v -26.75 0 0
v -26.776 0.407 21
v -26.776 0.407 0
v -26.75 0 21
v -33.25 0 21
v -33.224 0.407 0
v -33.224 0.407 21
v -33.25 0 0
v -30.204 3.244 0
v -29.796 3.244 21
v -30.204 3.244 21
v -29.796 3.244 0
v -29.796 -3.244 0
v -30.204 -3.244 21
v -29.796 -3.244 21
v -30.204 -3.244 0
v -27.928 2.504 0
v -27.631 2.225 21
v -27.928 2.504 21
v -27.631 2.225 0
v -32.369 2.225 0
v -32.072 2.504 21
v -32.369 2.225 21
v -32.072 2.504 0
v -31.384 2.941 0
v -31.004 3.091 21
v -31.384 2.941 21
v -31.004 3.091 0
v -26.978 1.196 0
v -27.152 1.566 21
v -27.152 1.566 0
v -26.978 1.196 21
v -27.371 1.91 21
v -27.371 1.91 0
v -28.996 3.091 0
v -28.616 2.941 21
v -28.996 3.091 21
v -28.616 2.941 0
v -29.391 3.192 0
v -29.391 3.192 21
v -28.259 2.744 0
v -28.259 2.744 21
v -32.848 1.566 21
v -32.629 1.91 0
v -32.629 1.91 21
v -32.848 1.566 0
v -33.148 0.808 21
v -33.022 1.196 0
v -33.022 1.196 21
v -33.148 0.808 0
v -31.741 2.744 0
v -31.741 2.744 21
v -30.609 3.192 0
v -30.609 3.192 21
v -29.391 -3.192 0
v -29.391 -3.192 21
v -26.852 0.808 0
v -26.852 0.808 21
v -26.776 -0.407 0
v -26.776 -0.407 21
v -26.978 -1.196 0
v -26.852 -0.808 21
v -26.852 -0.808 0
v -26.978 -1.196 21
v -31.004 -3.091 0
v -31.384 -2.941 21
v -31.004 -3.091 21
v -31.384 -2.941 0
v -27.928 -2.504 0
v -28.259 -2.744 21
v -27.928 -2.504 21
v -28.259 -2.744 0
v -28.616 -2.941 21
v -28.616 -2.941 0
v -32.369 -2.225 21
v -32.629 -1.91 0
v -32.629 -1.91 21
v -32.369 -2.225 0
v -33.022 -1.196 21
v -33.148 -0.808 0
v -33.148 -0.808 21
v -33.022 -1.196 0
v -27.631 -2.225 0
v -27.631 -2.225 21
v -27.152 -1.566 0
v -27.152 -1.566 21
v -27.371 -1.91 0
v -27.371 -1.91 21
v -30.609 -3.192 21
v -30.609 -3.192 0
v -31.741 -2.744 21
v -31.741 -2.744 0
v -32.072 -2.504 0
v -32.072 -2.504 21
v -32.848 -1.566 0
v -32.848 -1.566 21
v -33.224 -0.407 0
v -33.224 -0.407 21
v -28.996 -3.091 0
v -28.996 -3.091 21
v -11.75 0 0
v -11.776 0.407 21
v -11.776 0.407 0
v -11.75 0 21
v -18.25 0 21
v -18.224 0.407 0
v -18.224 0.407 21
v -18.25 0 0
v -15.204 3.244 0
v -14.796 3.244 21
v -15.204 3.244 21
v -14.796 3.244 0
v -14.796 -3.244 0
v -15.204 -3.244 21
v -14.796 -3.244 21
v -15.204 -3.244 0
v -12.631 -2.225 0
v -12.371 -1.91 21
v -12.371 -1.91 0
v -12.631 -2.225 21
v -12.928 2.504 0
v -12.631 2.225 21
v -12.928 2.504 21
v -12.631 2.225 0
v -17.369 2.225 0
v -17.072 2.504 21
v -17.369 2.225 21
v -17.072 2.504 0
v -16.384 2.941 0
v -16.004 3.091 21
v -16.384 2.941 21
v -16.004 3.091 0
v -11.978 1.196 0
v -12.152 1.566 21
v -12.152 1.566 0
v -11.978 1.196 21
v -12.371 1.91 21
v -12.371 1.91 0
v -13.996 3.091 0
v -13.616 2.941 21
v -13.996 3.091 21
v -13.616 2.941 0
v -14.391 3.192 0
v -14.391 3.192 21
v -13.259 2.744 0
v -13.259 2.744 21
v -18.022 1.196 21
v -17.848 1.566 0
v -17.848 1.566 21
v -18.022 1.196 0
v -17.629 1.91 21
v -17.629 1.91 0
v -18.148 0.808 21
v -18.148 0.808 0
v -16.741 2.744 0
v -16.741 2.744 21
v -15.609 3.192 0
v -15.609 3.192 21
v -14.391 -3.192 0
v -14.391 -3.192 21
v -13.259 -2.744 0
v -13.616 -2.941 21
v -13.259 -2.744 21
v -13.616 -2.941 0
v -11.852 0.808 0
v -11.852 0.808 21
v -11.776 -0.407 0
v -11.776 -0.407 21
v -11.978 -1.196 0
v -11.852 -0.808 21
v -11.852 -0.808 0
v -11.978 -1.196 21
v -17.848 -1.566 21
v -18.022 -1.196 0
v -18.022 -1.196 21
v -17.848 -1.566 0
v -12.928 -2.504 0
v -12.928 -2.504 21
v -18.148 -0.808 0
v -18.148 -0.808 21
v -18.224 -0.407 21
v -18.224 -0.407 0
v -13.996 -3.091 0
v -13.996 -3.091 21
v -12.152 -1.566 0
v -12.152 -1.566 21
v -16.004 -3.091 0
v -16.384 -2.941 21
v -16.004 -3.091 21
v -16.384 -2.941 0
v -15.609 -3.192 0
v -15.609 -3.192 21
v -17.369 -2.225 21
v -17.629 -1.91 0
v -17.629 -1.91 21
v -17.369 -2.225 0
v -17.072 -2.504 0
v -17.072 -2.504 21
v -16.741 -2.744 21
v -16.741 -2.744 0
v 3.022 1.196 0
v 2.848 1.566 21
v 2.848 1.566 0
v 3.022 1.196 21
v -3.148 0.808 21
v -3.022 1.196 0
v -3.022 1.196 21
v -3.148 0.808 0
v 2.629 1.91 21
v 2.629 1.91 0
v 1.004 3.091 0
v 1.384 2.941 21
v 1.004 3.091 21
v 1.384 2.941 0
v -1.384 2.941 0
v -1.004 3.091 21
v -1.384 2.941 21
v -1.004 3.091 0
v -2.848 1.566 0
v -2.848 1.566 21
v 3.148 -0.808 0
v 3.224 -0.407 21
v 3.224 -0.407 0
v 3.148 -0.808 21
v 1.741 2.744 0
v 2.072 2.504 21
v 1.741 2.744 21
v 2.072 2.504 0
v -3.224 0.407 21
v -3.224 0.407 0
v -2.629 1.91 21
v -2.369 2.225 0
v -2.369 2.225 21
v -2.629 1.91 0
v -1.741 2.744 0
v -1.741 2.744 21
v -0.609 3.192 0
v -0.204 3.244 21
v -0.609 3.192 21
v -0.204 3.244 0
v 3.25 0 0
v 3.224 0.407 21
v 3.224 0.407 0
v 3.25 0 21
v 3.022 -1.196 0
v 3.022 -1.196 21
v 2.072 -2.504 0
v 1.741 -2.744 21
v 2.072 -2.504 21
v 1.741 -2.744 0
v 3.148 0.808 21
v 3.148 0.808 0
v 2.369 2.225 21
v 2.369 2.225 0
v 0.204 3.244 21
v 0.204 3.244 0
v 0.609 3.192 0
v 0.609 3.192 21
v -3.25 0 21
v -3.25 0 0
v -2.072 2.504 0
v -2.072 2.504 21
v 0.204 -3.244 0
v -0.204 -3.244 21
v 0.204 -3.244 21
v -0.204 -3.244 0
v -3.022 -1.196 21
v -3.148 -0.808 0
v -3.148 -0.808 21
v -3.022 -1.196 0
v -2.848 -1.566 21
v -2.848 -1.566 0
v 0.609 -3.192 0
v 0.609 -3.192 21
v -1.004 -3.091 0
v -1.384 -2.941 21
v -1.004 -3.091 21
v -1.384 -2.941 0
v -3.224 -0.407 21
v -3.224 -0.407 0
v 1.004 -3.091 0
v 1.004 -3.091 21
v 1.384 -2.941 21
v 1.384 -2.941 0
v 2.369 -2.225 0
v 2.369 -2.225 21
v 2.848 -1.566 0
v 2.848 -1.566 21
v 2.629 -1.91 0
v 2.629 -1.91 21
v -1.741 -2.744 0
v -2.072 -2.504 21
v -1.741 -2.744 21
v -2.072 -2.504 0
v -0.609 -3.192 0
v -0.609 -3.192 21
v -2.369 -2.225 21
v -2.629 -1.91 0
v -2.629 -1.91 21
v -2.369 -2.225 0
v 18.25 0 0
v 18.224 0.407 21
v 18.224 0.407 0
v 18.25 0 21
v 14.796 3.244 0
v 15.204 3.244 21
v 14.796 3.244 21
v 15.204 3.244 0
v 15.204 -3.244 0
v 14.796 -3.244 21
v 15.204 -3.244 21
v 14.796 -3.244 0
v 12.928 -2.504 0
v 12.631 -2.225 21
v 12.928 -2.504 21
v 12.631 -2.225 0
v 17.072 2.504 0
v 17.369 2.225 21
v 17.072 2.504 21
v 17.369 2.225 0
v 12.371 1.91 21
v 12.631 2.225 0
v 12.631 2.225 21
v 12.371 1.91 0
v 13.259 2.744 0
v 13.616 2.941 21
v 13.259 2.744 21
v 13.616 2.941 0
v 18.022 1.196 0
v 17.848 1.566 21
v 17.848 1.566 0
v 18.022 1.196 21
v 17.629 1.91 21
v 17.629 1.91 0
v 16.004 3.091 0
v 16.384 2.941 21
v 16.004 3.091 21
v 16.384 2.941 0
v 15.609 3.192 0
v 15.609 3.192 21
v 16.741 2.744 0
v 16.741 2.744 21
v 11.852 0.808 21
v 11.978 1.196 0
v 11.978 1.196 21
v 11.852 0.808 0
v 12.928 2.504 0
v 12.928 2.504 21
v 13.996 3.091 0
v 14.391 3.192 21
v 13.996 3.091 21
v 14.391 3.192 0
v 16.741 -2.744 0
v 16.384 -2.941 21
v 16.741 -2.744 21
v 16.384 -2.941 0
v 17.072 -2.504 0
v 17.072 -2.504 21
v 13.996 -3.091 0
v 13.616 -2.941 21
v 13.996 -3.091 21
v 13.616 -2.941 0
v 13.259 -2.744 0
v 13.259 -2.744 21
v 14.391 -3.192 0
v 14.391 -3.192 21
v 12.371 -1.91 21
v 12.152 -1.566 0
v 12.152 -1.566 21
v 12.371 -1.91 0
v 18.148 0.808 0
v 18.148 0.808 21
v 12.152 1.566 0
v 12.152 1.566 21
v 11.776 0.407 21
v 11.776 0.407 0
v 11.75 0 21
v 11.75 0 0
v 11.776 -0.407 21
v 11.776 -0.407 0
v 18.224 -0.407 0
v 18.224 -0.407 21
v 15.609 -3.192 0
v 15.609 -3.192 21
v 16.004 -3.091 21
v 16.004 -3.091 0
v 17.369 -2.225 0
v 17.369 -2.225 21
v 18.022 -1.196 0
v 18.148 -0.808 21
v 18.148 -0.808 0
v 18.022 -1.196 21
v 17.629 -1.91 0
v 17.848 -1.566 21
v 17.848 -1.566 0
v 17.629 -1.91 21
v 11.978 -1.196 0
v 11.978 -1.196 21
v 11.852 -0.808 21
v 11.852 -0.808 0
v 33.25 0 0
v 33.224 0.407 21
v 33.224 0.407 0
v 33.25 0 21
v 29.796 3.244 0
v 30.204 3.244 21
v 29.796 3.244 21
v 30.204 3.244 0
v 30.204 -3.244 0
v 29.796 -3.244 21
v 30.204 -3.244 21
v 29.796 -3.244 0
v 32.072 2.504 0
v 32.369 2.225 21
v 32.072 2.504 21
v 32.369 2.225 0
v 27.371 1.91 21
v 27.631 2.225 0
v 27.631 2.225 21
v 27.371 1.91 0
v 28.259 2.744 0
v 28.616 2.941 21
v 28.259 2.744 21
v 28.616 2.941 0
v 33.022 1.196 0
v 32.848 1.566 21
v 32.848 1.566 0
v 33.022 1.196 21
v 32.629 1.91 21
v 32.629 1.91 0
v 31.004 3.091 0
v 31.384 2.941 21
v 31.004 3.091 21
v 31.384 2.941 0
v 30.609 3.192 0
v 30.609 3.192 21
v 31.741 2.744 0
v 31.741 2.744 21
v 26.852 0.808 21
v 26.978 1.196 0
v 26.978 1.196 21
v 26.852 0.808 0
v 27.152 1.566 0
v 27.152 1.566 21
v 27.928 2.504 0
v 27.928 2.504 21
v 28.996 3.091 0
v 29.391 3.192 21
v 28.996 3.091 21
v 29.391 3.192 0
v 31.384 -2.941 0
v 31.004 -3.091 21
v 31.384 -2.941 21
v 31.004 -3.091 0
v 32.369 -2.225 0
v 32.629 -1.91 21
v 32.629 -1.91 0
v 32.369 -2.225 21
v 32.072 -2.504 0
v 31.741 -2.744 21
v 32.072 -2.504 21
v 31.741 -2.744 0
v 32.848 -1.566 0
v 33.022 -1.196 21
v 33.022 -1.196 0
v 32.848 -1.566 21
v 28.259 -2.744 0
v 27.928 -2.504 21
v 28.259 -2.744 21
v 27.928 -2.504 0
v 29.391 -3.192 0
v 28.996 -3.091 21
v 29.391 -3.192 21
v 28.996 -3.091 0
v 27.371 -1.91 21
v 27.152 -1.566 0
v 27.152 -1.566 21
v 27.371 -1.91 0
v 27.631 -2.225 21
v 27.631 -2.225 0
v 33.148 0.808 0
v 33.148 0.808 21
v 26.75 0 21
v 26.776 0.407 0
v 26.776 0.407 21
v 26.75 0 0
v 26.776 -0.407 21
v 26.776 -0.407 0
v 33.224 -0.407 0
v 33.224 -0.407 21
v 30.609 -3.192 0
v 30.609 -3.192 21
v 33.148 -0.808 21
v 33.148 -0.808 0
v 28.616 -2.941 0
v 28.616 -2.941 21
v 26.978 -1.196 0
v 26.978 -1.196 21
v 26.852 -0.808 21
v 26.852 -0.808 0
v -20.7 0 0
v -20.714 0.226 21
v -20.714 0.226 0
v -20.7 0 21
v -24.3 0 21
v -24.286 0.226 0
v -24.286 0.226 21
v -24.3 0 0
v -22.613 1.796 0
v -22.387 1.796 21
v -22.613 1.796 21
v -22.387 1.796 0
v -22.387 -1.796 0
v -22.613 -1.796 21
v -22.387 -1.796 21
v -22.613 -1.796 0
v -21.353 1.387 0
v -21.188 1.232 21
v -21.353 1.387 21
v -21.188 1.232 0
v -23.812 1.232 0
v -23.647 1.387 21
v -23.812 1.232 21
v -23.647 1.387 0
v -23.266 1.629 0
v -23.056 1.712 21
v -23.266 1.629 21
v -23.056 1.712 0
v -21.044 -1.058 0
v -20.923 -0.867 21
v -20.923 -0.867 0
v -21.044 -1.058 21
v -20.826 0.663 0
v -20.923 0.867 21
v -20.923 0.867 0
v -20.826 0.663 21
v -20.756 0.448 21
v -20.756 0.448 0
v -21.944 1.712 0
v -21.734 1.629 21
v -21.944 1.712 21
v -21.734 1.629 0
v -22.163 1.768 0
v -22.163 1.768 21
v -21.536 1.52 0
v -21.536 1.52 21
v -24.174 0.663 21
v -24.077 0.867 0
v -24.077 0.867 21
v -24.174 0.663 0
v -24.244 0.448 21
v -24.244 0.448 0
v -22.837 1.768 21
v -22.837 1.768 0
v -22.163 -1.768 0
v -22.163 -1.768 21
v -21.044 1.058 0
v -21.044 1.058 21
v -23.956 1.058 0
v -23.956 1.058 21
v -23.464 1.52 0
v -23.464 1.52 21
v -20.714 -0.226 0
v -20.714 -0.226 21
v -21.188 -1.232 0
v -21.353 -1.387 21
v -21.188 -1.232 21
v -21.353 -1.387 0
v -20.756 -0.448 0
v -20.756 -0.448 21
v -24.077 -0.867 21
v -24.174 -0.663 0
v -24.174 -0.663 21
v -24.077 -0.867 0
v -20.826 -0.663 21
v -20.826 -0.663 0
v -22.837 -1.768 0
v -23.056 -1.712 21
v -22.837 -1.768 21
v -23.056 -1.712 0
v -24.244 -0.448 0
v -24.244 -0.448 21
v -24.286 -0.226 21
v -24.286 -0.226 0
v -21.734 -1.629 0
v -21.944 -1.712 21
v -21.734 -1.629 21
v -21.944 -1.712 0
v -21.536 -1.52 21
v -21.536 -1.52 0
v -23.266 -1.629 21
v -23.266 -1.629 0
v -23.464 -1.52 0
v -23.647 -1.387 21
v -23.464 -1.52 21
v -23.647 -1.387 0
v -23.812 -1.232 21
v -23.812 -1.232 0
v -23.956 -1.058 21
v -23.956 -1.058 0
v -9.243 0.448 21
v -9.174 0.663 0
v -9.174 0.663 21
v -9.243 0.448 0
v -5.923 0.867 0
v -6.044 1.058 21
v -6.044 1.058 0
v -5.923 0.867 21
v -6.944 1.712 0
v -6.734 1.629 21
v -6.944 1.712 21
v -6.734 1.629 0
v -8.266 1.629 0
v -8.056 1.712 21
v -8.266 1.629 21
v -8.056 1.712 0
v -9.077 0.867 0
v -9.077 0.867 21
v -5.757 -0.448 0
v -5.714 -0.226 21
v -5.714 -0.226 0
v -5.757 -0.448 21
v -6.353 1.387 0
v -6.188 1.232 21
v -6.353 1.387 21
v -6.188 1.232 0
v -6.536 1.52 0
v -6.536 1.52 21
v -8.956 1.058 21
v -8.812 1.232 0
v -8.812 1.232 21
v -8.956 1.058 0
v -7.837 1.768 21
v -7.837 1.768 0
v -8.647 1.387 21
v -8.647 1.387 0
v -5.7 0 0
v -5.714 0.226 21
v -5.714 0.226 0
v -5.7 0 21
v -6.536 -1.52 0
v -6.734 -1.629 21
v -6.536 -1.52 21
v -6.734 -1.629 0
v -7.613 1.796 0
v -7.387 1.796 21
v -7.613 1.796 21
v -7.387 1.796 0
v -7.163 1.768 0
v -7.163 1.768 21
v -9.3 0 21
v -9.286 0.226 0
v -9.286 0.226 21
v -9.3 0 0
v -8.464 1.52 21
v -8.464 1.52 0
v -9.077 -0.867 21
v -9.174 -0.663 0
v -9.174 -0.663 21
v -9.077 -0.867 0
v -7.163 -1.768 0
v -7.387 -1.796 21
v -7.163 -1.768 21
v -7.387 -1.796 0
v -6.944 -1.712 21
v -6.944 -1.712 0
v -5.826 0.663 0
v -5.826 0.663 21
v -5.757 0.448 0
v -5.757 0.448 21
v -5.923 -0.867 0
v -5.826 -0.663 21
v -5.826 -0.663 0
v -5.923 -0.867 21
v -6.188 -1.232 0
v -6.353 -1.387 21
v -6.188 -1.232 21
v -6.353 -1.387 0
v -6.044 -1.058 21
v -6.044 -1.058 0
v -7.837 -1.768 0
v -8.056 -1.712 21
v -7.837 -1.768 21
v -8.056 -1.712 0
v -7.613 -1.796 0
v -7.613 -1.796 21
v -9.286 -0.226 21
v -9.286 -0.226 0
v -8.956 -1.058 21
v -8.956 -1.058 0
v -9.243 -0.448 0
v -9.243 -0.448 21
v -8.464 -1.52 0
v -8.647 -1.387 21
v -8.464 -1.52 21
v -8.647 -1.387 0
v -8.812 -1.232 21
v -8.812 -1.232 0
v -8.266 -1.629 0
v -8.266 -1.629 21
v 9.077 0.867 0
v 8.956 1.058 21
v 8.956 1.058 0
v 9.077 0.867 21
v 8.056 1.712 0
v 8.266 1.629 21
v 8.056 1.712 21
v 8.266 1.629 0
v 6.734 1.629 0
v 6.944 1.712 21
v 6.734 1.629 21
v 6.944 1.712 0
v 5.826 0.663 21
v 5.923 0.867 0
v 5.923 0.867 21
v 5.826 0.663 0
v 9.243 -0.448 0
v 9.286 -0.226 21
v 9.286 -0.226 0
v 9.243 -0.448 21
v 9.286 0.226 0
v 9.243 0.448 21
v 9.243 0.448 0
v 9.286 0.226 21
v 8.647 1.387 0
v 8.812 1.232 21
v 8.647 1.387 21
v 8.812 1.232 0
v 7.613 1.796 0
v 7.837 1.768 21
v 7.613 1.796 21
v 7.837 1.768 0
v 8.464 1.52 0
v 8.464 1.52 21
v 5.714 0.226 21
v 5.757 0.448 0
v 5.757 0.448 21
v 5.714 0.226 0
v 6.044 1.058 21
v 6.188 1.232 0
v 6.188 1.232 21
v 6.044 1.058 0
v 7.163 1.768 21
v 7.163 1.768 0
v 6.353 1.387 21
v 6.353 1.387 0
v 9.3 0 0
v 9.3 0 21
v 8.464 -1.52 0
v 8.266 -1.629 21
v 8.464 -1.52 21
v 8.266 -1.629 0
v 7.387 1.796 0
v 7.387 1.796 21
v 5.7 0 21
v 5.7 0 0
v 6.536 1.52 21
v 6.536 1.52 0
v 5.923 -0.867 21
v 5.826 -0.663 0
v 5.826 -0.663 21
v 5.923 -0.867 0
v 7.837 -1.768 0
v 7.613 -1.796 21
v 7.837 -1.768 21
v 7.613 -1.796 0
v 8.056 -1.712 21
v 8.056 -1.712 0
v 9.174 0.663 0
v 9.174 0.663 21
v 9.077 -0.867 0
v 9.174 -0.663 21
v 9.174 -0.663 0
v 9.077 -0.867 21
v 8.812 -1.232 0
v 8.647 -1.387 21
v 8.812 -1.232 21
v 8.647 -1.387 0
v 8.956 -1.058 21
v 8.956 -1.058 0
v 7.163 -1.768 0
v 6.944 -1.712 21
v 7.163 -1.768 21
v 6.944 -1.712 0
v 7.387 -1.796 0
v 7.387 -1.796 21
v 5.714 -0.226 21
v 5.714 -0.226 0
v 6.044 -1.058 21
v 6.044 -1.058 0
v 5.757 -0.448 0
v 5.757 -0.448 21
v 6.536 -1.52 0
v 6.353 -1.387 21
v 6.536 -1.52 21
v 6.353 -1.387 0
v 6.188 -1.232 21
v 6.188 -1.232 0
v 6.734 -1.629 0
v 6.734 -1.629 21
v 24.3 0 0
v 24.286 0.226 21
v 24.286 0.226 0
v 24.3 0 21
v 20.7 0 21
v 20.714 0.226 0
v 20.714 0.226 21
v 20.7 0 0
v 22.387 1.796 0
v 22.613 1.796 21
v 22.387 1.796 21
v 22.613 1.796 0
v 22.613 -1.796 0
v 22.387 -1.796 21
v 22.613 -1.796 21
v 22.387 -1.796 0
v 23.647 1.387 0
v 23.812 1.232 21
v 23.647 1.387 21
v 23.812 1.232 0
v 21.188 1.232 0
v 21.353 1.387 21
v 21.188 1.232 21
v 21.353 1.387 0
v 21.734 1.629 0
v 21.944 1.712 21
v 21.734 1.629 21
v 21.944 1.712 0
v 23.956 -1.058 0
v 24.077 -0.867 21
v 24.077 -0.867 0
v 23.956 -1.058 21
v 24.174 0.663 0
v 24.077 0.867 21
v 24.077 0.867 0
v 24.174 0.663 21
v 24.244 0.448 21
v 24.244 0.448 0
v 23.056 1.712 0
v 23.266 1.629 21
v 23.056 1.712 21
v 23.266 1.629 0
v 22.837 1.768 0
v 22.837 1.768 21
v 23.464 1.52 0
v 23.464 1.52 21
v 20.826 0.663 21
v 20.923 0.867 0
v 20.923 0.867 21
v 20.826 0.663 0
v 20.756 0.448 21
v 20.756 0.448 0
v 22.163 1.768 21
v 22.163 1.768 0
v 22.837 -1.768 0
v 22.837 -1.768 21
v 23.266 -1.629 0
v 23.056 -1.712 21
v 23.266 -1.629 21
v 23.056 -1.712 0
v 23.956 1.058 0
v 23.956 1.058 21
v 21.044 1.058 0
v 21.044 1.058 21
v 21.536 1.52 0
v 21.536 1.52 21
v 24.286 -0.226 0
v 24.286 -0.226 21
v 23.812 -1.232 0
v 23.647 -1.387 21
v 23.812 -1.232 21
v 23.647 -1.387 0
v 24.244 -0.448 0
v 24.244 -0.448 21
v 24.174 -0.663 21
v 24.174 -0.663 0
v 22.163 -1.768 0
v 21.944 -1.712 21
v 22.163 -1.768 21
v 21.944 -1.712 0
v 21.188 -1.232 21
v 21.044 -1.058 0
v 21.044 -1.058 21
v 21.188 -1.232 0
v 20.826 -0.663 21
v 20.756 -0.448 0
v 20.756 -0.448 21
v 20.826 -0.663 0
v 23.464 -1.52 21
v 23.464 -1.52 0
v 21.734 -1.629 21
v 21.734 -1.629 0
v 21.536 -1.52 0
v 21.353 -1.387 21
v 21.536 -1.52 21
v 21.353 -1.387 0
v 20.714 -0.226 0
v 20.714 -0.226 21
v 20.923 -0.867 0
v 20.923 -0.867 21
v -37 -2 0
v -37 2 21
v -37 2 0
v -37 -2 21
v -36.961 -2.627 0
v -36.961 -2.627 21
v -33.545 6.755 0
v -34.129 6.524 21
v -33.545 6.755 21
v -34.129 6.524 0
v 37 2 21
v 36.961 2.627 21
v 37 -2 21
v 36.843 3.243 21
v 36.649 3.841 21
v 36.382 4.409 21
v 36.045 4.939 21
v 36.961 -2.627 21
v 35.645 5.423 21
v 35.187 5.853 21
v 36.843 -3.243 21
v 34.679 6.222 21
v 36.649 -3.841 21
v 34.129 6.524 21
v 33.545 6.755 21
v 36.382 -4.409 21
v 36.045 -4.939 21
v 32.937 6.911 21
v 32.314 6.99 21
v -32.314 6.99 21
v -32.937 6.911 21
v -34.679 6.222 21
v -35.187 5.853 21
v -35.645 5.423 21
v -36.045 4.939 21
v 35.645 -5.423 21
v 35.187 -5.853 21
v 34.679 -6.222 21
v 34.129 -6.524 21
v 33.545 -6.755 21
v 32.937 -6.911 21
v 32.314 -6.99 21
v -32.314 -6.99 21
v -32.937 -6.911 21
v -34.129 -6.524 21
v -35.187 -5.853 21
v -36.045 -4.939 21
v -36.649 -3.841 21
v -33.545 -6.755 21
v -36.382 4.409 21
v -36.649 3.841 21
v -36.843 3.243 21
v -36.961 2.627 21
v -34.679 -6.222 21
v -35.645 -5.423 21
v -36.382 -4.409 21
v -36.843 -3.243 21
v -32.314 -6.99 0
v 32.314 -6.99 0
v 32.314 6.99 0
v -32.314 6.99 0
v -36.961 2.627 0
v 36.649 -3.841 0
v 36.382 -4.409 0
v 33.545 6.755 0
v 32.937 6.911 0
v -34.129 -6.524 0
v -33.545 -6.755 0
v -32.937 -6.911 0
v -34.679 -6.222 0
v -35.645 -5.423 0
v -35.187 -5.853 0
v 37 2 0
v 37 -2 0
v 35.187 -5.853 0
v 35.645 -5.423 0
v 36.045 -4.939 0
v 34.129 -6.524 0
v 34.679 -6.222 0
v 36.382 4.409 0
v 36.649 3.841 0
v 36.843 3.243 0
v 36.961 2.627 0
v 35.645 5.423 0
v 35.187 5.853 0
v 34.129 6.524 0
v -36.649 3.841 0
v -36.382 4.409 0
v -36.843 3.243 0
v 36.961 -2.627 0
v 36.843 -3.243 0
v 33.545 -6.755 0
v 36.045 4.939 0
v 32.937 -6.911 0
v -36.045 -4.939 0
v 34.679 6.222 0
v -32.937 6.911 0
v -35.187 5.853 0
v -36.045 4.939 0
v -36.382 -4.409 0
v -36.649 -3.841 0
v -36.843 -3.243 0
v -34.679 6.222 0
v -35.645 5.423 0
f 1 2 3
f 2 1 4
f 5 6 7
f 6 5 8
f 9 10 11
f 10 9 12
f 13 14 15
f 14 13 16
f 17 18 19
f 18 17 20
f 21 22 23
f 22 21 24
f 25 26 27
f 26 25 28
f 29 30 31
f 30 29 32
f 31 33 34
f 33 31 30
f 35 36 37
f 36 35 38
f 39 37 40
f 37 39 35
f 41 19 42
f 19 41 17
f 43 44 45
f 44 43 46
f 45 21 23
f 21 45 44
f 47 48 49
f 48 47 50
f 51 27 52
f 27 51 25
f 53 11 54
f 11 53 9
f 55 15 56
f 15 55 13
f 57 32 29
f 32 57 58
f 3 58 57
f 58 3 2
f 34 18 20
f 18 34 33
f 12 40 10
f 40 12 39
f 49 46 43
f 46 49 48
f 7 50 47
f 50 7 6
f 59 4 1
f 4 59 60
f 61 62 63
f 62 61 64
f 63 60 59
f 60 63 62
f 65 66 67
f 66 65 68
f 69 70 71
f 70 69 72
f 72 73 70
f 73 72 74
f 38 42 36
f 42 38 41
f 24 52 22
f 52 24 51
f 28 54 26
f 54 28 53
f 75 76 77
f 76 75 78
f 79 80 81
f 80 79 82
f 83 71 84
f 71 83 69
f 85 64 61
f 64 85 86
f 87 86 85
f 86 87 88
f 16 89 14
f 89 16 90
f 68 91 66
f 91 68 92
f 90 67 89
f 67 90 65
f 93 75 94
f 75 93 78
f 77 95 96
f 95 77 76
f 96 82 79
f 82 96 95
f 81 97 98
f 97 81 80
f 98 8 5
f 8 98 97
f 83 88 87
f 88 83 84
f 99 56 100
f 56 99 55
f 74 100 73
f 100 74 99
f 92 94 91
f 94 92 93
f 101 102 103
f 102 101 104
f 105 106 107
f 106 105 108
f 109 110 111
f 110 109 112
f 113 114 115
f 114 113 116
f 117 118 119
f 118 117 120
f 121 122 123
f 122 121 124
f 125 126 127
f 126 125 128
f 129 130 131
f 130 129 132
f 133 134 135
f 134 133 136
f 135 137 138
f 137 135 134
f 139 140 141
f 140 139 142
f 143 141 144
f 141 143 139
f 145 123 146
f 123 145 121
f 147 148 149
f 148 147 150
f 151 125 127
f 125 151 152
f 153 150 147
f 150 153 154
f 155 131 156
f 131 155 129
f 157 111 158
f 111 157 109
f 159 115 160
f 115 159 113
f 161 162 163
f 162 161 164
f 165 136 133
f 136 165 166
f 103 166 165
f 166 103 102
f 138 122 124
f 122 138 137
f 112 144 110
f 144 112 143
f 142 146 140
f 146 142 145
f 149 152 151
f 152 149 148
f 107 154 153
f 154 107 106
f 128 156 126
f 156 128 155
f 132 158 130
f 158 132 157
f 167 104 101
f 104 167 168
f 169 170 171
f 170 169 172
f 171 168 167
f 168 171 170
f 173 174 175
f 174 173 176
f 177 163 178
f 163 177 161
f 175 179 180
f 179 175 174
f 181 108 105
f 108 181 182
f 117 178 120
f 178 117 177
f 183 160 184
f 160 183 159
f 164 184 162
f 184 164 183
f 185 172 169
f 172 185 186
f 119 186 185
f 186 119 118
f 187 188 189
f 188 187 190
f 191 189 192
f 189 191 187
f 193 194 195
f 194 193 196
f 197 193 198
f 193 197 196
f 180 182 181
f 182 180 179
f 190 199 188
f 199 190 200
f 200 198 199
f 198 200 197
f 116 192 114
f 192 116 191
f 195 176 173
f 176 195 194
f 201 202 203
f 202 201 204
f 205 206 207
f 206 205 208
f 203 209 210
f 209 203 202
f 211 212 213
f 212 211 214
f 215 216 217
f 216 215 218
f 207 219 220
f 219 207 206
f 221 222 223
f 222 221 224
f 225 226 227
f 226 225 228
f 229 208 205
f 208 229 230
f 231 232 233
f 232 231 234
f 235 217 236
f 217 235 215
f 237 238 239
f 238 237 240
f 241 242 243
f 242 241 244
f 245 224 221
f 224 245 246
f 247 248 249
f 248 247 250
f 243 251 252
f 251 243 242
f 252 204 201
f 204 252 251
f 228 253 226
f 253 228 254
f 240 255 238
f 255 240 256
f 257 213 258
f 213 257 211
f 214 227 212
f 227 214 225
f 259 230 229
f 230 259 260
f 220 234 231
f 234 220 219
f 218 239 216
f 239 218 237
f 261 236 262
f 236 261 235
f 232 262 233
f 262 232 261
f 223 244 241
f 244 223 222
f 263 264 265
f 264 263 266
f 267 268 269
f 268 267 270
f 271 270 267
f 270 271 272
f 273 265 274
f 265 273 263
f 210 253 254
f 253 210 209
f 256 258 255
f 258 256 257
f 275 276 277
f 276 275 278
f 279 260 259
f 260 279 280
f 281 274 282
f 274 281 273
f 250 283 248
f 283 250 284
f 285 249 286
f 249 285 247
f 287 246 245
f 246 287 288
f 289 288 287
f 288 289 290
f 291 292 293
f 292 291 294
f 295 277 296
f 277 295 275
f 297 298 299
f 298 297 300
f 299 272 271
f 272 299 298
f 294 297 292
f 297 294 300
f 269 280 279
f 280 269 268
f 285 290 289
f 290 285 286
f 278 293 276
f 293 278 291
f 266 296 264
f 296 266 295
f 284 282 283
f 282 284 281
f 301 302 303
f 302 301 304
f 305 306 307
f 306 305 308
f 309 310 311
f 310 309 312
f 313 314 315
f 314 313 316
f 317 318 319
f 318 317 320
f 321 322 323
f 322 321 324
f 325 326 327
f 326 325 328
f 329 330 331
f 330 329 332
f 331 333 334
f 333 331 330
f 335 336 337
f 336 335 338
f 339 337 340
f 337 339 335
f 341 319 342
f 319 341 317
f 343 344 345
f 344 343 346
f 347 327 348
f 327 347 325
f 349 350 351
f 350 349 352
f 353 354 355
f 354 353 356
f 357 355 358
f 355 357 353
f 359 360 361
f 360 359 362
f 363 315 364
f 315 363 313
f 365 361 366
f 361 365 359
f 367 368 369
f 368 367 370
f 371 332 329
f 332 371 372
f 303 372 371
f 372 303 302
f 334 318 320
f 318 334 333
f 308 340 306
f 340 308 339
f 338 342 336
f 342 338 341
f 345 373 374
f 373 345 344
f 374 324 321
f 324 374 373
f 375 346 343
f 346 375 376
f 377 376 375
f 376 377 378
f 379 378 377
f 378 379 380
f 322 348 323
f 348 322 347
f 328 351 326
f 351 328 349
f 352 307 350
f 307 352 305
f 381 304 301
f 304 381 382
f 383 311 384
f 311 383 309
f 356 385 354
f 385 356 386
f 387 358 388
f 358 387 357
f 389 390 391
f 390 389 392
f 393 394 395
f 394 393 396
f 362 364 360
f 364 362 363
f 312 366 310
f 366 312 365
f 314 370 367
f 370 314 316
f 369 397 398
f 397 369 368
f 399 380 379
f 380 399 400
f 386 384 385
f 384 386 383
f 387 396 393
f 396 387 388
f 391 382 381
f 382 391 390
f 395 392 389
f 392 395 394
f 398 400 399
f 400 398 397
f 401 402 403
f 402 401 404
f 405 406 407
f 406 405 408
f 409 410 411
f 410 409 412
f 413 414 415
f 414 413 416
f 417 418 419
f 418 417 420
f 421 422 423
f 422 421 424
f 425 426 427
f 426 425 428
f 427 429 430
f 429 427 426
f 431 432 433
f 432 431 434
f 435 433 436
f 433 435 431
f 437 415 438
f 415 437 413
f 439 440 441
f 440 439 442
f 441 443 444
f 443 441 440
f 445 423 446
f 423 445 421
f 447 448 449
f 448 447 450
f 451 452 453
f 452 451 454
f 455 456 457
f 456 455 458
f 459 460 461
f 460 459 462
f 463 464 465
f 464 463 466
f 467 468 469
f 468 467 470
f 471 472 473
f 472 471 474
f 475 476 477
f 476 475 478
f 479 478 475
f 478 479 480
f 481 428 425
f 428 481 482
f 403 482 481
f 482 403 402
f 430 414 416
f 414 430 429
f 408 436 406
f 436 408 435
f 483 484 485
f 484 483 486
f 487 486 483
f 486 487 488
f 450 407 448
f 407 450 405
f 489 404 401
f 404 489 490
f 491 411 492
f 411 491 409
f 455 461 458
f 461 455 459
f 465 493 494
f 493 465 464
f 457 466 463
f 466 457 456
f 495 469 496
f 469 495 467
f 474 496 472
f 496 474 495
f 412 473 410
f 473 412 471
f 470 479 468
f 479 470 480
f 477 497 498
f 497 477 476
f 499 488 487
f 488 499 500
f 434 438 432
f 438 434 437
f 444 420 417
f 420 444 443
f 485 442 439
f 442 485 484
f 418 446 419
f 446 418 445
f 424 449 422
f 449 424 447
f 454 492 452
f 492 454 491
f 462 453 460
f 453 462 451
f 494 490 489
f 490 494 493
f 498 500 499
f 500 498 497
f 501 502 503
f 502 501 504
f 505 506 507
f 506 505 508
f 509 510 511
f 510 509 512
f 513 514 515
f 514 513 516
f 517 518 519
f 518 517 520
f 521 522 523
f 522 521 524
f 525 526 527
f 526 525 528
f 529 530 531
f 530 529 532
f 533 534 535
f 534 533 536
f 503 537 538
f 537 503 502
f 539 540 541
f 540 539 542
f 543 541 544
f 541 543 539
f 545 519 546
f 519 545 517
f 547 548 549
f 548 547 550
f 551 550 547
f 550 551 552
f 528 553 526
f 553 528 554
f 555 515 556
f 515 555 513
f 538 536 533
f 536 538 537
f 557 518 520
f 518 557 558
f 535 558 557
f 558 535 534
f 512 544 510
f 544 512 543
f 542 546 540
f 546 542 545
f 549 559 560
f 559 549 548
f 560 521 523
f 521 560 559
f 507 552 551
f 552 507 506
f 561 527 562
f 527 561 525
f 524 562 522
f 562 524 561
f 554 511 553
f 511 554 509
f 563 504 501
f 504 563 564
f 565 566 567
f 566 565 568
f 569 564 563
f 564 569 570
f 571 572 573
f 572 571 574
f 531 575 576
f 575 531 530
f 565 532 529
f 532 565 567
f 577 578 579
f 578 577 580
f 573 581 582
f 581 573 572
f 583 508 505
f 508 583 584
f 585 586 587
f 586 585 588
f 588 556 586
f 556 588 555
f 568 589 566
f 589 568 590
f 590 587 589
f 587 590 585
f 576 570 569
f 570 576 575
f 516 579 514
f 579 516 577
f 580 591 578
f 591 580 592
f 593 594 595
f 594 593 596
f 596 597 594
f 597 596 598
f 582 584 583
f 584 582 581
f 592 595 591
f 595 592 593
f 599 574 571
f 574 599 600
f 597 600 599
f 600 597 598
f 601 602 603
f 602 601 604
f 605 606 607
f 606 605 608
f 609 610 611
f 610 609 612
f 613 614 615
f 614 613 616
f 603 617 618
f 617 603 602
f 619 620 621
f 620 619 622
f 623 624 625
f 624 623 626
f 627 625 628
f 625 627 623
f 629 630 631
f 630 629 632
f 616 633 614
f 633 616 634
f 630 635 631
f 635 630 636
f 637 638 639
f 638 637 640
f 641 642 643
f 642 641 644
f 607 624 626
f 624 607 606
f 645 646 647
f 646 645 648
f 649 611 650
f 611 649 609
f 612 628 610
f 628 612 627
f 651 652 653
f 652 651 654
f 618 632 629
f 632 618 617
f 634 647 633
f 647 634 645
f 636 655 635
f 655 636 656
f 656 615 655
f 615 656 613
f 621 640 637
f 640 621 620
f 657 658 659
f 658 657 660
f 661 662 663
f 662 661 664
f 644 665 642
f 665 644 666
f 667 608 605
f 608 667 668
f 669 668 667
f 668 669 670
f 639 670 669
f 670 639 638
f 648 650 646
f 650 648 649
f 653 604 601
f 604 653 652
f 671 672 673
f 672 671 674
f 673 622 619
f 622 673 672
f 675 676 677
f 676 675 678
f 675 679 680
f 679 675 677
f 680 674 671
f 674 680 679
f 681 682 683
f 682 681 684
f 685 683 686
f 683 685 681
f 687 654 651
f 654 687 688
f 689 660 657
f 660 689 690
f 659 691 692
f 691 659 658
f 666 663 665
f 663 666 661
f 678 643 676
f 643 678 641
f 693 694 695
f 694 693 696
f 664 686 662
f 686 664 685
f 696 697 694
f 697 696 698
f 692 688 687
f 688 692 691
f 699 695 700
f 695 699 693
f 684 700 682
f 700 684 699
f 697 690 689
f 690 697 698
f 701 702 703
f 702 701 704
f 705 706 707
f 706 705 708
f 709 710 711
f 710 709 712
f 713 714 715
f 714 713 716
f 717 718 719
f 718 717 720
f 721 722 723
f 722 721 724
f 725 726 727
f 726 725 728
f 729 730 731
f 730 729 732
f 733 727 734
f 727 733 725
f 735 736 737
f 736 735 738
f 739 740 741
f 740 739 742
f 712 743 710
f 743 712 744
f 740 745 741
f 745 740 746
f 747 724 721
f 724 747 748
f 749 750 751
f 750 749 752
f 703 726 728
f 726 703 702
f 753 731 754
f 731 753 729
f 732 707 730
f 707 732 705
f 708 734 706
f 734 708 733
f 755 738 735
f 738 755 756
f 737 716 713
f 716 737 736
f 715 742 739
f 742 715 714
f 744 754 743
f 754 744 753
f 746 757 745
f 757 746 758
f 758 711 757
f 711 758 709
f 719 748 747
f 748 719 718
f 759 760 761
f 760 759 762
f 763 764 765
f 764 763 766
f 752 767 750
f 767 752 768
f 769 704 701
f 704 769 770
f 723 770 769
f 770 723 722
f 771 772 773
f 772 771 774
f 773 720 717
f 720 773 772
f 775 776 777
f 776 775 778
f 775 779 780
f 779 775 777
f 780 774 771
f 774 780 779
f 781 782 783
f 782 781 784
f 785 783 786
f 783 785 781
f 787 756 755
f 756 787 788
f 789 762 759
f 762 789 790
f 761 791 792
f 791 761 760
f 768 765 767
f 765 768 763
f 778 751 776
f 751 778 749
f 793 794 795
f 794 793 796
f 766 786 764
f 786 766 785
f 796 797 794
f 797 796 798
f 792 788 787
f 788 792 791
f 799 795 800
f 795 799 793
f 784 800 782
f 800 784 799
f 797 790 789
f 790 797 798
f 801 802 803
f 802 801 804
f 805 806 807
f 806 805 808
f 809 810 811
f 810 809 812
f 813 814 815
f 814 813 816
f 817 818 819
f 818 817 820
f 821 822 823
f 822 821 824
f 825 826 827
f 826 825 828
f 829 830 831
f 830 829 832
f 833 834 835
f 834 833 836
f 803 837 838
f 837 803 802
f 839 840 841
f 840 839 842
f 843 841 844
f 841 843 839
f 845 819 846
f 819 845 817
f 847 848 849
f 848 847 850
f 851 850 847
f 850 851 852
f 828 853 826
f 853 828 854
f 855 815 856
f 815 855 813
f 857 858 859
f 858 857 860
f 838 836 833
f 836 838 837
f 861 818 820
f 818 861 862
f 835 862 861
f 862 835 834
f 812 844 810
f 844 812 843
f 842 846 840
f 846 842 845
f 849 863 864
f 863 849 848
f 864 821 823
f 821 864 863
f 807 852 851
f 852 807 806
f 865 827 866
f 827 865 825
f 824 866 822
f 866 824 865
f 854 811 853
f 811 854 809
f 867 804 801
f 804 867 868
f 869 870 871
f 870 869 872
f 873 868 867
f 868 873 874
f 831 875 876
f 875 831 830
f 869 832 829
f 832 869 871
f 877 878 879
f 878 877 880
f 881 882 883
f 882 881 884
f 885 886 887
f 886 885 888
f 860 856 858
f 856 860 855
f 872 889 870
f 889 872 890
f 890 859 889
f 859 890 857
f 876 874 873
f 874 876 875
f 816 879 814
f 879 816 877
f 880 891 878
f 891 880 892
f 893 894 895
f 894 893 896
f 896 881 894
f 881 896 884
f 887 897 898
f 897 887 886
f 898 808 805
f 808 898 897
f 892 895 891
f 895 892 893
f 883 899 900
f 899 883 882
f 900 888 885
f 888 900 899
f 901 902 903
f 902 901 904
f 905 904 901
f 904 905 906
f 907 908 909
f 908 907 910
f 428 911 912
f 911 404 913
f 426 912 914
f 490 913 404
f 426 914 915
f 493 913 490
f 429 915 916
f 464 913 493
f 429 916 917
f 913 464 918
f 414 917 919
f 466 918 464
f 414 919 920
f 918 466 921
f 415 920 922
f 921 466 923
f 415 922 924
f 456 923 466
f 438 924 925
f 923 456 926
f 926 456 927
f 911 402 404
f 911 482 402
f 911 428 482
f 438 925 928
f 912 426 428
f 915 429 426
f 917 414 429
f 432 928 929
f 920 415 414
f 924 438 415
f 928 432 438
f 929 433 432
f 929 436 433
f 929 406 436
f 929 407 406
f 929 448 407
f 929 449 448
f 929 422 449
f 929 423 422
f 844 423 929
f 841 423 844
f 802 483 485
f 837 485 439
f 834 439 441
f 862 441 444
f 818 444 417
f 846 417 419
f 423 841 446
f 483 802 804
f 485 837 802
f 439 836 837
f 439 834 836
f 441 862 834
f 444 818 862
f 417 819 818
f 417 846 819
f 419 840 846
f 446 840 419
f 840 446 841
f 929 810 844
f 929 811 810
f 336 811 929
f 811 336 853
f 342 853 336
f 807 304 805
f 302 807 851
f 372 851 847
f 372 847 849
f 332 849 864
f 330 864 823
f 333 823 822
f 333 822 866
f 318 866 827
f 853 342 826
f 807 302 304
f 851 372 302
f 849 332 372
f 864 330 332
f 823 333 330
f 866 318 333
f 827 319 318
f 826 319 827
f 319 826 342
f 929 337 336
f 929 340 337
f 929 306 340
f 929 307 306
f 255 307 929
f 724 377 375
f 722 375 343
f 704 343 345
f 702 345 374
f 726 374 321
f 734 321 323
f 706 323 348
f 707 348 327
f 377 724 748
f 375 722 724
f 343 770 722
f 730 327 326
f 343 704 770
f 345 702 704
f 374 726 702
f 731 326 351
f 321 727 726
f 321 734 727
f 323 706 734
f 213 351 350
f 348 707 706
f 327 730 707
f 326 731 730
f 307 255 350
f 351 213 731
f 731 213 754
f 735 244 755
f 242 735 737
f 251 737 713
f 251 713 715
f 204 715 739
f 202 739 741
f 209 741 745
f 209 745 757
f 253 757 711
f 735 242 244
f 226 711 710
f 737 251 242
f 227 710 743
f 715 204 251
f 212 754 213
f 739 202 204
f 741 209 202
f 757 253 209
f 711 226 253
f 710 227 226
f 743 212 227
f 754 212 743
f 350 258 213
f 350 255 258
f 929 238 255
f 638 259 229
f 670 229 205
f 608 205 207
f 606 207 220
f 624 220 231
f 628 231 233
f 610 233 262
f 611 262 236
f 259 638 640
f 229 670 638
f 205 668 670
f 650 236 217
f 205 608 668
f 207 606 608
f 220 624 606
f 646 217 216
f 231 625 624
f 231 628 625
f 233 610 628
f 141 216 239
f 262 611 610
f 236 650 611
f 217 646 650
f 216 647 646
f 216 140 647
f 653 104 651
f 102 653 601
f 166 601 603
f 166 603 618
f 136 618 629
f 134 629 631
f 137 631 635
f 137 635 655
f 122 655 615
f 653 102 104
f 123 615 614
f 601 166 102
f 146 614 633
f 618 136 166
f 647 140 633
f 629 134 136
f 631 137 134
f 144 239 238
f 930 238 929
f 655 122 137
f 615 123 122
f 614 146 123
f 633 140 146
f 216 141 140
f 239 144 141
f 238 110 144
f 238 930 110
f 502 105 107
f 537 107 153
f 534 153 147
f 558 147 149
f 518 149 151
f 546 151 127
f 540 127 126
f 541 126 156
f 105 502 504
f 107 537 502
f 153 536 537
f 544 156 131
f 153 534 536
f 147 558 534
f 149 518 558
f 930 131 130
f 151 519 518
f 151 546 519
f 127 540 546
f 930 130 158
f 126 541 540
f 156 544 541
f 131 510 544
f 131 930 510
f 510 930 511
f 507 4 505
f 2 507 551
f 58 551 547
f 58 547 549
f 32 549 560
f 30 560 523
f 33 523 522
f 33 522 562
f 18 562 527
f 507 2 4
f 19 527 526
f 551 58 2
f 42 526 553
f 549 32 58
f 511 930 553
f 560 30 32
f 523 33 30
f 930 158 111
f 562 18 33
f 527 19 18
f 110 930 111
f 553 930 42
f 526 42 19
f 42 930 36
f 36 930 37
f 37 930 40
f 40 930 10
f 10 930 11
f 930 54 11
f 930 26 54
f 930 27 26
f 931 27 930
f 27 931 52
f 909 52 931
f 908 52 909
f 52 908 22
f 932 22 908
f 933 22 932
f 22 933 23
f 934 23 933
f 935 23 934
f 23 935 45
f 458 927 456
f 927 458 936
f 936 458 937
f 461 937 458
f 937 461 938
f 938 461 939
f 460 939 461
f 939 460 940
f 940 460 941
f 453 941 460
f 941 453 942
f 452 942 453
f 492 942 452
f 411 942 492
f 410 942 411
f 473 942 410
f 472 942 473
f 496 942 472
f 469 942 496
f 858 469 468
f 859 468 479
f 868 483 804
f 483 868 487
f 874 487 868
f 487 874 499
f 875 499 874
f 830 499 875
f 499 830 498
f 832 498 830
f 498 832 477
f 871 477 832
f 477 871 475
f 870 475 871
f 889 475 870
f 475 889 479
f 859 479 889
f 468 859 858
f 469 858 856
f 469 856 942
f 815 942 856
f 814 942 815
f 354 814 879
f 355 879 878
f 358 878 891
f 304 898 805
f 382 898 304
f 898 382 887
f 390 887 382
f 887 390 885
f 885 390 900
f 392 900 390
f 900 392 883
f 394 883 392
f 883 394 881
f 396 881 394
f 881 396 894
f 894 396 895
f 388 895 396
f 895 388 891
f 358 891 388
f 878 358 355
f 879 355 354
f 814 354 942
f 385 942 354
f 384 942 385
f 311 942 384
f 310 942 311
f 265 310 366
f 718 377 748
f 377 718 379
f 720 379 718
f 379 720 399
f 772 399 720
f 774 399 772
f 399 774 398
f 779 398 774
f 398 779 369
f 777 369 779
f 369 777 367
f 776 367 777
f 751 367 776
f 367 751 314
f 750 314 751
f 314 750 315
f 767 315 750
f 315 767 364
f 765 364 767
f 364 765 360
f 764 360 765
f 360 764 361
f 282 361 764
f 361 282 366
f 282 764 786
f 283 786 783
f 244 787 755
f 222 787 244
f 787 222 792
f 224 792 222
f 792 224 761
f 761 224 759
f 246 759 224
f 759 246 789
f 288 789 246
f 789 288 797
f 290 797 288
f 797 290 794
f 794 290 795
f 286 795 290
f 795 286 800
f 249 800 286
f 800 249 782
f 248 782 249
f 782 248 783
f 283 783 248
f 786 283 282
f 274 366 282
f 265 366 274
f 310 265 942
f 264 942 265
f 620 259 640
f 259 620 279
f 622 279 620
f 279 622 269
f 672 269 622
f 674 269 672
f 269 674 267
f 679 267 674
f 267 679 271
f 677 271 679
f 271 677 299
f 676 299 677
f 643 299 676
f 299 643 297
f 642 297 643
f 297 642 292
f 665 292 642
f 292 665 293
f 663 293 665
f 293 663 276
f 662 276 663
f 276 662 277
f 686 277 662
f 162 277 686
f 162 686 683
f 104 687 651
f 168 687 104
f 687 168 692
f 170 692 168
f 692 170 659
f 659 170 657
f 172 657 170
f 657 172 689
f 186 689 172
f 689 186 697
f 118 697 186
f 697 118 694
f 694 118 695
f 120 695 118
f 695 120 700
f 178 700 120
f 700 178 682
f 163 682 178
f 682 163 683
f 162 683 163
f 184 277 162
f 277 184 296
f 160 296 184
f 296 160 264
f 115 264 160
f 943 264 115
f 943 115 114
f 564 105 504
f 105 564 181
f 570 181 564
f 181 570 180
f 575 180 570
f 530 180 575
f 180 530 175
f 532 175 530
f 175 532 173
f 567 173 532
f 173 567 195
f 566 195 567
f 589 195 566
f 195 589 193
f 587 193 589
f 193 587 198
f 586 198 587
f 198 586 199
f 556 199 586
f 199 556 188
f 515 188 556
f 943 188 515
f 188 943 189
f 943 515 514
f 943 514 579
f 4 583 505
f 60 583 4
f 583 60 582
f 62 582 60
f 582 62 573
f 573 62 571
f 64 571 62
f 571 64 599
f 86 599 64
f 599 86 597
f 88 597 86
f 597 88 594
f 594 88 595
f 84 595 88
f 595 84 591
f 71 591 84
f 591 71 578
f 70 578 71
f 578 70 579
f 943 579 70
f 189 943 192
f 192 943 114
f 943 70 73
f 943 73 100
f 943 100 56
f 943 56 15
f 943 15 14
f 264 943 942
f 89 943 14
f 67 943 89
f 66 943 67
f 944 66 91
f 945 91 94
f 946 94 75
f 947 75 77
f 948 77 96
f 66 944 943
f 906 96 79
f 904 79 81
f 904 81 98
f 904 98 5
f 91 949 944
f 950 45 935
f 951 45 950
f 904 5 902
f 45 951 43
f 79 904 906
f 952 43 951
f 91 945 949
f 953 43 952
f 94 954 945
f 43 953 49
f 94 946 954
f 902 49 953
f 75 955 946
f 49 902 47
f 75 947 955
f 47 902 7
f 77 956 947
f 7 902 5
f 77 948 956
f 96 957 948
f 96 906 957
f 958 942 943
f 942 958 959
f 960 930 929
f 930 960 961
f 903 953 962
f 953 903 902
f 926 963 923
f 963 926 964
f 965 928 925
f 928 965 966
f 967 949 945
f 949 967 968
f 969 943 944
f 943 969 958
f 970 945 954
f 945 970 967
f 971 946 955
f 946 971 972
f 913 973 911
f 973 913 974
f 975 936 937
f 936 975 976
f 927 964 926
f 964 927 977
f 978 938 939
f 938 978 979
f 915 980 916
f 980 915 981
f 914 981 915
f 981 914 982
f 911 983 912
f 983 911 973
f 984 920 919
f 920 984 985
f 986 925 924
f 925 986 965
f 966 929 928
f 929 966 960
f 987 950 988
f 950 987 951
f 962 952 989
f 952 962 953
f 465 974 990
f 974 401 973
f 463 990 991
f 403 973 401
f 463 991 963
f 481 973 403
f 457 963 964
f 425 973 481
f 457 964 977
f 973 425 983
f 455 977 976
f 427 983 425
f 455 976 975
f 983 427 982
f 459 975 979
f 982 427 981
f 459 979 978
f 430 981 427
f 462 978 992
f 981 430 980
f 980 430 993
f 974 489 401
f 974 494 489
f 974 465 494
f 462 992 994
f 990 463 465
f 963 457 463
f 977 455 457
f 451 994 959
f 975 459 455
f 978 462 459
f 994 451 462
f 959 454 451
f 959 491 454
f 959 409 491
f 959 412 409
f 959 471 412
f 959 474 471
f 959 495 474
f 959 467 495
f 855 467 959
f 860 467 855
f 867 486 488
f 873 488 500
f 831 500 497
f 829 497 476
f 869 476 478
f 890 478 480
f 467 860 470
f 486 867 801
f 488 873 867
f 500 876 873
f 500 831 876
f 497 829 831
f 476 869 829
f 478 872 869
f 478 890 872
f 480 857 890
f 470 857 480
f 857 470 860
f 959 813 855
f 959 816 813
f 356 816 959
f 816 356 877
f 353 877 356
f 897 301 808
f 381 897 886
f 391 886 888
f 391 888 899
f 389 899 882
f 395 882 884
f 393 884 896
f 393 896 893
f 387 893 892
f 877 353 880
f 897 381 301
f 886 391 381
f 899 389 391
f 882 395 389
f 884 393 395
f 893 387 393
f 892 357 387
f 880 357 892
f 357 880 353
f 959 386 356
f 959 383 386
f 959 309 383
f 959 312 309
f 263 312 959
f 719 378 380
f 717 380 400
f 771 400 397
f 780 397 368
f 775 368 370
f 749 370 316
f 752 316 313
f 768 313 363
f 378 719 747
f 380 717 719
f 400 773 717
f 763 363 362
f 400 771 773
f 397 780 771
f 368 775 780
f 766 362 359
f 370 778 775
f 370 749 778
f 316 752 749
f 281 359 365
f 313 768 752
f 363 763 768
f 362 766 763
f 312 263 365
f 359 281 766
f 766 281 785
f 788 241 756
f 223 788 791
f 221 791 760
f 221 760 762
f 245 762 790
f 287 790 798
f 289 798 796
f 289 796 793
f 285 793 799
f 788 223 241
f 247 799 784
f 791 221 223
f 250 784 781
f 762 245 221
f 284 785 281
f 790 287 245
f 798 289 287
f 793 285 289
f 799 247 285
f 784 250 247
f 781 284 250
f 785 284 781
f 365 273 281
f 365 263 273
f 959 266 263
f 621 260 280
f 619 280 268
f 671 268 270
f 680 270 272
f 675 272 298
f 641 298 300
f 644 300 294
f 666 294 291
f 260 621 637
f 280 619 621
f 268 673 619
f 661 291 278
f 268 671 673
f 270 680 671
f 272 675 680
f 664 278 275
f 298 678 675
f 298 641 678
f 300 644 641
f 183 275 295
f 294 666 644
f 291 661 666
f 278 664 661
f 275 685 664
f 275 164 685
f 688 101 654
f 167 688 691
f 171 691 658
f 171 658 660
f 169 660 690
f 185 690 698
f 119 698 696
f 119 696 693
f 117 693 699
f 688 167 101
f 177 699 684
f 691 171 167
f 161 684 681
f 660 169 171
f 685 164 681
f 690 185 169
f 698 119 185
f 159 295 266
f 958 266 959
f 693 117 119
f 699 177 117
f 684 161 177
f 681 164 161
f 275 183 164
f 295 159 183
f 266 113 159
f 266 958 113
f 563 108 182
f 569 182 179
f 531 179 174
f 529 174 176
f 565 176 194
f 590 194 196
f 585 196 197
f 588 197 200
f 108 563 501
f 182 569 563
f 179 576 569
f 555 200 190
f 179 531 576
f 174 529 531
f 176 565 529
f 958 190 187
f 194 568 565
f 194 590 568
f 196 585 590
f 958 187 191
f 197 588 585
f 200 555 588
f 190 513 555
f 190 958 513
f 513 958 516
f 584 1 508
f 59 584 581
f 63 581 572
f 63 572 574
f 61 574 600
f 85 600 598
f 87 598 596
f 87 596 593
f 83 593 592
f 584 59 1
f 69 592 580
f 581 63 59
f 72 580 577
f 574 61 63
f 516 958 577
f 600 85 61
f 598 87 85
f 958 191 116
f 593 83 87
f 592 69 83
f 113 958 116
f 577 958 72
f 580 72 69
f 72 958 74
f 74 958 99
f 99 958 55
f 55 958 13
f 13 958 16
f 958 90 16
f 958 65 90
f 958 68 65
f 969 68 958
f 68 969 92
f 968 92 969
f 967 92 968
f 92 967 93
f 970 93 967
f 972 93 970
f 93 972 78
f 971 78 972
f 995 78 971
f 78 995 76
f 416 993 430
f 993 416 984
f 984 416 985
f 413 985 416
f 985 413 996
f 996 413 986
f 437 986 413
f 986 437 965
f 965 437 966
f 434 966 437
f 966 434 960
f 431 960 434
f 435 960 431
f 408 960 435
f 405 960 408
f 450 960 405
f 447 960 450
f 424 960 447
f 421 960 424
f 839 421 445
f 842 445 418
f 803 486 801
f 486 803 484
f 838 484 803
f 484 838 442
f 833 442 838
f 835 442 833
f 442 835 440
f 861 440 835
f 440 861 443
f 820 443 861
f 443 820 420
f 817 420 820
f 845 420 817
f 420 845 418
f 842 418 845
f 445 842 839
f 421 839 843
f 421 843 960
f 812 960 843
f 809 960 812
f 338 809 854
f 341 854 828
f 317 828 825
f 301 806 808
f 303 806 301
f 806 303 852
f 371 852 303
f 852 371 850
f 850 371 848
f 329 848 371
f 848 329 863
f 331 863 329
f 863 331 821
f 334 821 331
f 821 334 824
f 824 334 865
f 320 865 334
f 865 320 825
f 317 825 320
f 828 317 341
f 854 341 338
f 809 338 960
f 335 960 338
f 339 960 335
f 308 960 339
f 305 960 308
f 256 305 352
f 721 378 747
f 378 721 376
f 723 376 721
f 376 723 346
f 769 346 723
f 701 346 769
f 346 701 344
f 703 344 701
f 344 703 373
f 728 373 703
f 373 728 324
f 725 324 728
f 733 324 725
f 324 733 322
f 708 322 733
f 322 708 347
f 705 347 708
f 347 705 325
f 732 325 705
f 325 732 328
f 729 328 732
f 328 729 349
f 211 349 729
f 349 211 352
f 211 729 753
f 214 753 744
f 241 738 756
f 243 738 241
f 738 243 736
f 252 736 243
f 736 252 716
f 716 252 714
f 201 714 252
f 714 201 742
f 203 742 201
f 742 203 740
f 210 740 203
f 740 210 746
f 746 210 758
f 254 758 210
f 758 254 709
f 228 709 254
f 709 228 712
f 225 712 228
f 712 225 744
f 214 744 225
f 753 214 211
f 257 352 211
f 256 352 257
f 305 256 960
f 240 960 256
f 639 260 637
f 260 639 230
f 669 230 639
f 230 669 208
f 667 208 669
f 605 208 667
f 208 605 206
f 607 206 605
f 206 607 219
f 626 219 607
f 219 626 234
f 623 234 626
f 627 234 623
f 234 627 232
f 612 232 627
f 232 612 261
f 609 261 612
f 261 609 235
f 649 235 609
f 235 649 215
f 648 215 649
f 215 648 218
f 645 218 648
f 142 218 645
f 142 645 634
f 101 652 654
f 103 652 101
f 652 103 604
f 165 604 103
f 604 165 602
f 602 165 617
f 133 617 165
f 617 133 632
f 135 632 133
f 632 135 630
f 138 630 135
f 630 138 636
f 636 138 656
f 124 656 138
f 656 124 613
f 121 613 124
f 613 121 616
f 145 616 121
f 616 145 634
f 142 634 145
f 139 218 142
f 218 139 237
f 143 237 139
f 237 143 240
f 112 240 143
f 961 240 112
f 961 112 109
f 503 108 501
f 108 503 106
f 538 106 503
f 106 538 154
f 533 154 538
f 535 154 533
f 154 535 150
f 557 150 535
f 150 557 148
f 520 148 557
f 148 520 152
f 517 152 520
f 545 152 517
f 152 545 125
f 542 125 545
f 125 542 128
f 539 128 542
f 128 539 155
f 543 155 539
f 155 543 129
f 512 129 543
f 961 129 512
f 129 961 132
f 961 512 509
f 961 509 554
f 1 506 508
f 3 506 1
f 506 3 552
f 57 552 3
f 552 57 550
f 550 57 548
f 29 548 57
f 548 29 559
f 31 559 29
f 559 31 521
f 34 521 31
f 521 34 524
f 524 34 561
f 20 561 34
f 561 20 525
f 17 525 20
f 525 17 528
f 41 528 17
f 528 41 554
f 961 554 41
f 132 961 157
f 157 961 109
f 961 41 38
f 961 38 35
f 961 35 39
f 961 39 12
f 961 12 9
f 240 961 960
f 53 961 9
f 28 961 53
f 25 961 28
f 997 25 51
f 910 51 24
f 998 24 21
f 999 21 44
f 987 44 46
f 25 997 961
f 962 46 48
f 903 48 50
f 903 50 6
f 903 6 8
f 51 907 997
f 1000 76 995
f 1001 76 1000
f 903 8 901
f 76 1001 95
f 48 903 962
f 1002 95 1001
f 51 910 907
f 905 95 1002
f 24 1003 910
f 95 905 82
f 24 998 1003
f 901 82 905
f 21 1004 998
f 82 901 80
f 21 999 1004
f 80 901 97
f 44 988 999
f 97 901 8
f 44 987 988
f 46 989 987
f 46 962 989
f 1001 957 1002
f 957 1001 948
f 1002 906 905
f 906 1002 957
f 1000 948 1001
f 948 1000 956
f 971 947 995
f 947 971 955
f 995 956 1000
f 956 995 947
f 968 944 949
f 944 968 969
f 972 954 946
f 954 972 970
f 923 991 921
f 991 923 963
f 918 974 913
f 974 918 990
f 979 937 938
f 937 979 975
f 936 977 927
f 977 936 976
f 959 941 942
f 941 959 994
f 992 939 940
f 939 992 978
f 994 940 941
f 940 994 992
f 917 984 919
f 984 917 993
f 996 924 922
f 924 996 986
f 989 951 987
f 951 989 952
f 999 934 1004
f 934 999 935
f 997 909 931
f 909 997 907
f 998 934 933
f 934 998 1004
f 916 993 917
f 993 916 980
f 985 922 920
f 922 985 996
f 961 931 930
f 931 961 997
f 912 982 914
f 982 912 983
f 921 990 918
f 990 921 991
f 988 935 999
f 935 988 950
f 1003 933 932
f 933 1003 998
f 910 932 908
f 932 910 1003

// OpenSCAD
$fn = 50;


difference() {
	union() {
		hull() {
			translate(v = [-32.0000000000, 2.0000000000, 0]) {
				cylinder(h = 21, r = 5);
			}
			translate(v = [32.0000000000, 2.0000000000, 0]) {
				cylinder(h = 21, r = 5);
			}
			translate(v = [-32.0000000000, -2.0000000000, 0]) {
				cylinder(h = 21, r = 5);
			}
			translate(v = [32.0000000000, -2.0000000000, 0]) {
				cylinder(h = 21, r = 5);
			}
		}
	}
	union() {
		translate(v = [-30.0000000000, 0.0000000000, 0]) {
			translate(v = [0, 0, -100]) {
				cylinder(h = 200, r = 3.2500000000);
			}
		}
		translate(v = [-15.0000000000, 0.0000000000, 0]) {
			translate(v = [0, 0, -100]) {
				cylinder(h = 200, r = 3.2500000000);
			}
		}
		translate(v = [0, 0, -100]) {
			cylinder(h = 200, r = 3.2500000000);
		}
		translate(v = [15.0000000000, 0.0000000000, 0]) {
			translate(v = [0, 0, -100]) {
				cylinder(h = 200, r = 3.2500000000);
			}
		}
		translate(v = [30.0000000000, 0.0000000000, 0]) {
			translate(v = [0, 0, -100]) {
				cylinder(h = 200, r = 3.2500000000);
			}
		}
		translate(v = [-30.0000000000, 0.0000000000, 0]) {
			translate(v = [0, 0, -100]) {
				cylinder(h = 200, r = 1.8000000000);
			}
		}
		translate(v = [-22.5000000000, 0.0000000000, 0]) {
			translate(v = [0, 0, -100]) {
				cylinder(h = 200, r = 1.8000000000);
			}
		}
		translate(v = [-15.0000000000, 0.0000000000, 0]) {
			translate(v = [0, 0, -100]) {
				cylinder(h = 200, r = 1.8000000000);
			}
		}
		translate(v = [-7.5000000000, 0.0000000000, 0]) {
			translate(v = [0, 0, -100]) {
				cylinder(h = 200, r = 1.8000000000);
			}
		}
		translate(v = [0, 0, -100]) {
			cylinder(h = 200, r = 1.8000000000);
		}
		translate(v = [7.5000000000, 0.0000000000, 0]) {
			translate(v = [0, 0, -100]) {
				cylinder(h = 200, r = 1.8000000000);
			}
		}
		translate(v = [15.0000000000, 0.0000000000, 0]) {
			translate(v = [0, 0, -100]) {
				cylinder(h = 200, r = 1.8000000000);
			}
		}
		translate(v = [22.5000000000, 0.0000000000, 0]) {
			translate(v = [0, 0, -100]) {
				cylinder(h = 200, r = 1.8000000000);
			}
		}
		translate(v = [30.0000000000, 0.0000000000, 0]) {
			translate(v = [0, 0, -100]) {
				cylinder(h = 200, r = 1.8000000000);
			}
		}
	}
}
